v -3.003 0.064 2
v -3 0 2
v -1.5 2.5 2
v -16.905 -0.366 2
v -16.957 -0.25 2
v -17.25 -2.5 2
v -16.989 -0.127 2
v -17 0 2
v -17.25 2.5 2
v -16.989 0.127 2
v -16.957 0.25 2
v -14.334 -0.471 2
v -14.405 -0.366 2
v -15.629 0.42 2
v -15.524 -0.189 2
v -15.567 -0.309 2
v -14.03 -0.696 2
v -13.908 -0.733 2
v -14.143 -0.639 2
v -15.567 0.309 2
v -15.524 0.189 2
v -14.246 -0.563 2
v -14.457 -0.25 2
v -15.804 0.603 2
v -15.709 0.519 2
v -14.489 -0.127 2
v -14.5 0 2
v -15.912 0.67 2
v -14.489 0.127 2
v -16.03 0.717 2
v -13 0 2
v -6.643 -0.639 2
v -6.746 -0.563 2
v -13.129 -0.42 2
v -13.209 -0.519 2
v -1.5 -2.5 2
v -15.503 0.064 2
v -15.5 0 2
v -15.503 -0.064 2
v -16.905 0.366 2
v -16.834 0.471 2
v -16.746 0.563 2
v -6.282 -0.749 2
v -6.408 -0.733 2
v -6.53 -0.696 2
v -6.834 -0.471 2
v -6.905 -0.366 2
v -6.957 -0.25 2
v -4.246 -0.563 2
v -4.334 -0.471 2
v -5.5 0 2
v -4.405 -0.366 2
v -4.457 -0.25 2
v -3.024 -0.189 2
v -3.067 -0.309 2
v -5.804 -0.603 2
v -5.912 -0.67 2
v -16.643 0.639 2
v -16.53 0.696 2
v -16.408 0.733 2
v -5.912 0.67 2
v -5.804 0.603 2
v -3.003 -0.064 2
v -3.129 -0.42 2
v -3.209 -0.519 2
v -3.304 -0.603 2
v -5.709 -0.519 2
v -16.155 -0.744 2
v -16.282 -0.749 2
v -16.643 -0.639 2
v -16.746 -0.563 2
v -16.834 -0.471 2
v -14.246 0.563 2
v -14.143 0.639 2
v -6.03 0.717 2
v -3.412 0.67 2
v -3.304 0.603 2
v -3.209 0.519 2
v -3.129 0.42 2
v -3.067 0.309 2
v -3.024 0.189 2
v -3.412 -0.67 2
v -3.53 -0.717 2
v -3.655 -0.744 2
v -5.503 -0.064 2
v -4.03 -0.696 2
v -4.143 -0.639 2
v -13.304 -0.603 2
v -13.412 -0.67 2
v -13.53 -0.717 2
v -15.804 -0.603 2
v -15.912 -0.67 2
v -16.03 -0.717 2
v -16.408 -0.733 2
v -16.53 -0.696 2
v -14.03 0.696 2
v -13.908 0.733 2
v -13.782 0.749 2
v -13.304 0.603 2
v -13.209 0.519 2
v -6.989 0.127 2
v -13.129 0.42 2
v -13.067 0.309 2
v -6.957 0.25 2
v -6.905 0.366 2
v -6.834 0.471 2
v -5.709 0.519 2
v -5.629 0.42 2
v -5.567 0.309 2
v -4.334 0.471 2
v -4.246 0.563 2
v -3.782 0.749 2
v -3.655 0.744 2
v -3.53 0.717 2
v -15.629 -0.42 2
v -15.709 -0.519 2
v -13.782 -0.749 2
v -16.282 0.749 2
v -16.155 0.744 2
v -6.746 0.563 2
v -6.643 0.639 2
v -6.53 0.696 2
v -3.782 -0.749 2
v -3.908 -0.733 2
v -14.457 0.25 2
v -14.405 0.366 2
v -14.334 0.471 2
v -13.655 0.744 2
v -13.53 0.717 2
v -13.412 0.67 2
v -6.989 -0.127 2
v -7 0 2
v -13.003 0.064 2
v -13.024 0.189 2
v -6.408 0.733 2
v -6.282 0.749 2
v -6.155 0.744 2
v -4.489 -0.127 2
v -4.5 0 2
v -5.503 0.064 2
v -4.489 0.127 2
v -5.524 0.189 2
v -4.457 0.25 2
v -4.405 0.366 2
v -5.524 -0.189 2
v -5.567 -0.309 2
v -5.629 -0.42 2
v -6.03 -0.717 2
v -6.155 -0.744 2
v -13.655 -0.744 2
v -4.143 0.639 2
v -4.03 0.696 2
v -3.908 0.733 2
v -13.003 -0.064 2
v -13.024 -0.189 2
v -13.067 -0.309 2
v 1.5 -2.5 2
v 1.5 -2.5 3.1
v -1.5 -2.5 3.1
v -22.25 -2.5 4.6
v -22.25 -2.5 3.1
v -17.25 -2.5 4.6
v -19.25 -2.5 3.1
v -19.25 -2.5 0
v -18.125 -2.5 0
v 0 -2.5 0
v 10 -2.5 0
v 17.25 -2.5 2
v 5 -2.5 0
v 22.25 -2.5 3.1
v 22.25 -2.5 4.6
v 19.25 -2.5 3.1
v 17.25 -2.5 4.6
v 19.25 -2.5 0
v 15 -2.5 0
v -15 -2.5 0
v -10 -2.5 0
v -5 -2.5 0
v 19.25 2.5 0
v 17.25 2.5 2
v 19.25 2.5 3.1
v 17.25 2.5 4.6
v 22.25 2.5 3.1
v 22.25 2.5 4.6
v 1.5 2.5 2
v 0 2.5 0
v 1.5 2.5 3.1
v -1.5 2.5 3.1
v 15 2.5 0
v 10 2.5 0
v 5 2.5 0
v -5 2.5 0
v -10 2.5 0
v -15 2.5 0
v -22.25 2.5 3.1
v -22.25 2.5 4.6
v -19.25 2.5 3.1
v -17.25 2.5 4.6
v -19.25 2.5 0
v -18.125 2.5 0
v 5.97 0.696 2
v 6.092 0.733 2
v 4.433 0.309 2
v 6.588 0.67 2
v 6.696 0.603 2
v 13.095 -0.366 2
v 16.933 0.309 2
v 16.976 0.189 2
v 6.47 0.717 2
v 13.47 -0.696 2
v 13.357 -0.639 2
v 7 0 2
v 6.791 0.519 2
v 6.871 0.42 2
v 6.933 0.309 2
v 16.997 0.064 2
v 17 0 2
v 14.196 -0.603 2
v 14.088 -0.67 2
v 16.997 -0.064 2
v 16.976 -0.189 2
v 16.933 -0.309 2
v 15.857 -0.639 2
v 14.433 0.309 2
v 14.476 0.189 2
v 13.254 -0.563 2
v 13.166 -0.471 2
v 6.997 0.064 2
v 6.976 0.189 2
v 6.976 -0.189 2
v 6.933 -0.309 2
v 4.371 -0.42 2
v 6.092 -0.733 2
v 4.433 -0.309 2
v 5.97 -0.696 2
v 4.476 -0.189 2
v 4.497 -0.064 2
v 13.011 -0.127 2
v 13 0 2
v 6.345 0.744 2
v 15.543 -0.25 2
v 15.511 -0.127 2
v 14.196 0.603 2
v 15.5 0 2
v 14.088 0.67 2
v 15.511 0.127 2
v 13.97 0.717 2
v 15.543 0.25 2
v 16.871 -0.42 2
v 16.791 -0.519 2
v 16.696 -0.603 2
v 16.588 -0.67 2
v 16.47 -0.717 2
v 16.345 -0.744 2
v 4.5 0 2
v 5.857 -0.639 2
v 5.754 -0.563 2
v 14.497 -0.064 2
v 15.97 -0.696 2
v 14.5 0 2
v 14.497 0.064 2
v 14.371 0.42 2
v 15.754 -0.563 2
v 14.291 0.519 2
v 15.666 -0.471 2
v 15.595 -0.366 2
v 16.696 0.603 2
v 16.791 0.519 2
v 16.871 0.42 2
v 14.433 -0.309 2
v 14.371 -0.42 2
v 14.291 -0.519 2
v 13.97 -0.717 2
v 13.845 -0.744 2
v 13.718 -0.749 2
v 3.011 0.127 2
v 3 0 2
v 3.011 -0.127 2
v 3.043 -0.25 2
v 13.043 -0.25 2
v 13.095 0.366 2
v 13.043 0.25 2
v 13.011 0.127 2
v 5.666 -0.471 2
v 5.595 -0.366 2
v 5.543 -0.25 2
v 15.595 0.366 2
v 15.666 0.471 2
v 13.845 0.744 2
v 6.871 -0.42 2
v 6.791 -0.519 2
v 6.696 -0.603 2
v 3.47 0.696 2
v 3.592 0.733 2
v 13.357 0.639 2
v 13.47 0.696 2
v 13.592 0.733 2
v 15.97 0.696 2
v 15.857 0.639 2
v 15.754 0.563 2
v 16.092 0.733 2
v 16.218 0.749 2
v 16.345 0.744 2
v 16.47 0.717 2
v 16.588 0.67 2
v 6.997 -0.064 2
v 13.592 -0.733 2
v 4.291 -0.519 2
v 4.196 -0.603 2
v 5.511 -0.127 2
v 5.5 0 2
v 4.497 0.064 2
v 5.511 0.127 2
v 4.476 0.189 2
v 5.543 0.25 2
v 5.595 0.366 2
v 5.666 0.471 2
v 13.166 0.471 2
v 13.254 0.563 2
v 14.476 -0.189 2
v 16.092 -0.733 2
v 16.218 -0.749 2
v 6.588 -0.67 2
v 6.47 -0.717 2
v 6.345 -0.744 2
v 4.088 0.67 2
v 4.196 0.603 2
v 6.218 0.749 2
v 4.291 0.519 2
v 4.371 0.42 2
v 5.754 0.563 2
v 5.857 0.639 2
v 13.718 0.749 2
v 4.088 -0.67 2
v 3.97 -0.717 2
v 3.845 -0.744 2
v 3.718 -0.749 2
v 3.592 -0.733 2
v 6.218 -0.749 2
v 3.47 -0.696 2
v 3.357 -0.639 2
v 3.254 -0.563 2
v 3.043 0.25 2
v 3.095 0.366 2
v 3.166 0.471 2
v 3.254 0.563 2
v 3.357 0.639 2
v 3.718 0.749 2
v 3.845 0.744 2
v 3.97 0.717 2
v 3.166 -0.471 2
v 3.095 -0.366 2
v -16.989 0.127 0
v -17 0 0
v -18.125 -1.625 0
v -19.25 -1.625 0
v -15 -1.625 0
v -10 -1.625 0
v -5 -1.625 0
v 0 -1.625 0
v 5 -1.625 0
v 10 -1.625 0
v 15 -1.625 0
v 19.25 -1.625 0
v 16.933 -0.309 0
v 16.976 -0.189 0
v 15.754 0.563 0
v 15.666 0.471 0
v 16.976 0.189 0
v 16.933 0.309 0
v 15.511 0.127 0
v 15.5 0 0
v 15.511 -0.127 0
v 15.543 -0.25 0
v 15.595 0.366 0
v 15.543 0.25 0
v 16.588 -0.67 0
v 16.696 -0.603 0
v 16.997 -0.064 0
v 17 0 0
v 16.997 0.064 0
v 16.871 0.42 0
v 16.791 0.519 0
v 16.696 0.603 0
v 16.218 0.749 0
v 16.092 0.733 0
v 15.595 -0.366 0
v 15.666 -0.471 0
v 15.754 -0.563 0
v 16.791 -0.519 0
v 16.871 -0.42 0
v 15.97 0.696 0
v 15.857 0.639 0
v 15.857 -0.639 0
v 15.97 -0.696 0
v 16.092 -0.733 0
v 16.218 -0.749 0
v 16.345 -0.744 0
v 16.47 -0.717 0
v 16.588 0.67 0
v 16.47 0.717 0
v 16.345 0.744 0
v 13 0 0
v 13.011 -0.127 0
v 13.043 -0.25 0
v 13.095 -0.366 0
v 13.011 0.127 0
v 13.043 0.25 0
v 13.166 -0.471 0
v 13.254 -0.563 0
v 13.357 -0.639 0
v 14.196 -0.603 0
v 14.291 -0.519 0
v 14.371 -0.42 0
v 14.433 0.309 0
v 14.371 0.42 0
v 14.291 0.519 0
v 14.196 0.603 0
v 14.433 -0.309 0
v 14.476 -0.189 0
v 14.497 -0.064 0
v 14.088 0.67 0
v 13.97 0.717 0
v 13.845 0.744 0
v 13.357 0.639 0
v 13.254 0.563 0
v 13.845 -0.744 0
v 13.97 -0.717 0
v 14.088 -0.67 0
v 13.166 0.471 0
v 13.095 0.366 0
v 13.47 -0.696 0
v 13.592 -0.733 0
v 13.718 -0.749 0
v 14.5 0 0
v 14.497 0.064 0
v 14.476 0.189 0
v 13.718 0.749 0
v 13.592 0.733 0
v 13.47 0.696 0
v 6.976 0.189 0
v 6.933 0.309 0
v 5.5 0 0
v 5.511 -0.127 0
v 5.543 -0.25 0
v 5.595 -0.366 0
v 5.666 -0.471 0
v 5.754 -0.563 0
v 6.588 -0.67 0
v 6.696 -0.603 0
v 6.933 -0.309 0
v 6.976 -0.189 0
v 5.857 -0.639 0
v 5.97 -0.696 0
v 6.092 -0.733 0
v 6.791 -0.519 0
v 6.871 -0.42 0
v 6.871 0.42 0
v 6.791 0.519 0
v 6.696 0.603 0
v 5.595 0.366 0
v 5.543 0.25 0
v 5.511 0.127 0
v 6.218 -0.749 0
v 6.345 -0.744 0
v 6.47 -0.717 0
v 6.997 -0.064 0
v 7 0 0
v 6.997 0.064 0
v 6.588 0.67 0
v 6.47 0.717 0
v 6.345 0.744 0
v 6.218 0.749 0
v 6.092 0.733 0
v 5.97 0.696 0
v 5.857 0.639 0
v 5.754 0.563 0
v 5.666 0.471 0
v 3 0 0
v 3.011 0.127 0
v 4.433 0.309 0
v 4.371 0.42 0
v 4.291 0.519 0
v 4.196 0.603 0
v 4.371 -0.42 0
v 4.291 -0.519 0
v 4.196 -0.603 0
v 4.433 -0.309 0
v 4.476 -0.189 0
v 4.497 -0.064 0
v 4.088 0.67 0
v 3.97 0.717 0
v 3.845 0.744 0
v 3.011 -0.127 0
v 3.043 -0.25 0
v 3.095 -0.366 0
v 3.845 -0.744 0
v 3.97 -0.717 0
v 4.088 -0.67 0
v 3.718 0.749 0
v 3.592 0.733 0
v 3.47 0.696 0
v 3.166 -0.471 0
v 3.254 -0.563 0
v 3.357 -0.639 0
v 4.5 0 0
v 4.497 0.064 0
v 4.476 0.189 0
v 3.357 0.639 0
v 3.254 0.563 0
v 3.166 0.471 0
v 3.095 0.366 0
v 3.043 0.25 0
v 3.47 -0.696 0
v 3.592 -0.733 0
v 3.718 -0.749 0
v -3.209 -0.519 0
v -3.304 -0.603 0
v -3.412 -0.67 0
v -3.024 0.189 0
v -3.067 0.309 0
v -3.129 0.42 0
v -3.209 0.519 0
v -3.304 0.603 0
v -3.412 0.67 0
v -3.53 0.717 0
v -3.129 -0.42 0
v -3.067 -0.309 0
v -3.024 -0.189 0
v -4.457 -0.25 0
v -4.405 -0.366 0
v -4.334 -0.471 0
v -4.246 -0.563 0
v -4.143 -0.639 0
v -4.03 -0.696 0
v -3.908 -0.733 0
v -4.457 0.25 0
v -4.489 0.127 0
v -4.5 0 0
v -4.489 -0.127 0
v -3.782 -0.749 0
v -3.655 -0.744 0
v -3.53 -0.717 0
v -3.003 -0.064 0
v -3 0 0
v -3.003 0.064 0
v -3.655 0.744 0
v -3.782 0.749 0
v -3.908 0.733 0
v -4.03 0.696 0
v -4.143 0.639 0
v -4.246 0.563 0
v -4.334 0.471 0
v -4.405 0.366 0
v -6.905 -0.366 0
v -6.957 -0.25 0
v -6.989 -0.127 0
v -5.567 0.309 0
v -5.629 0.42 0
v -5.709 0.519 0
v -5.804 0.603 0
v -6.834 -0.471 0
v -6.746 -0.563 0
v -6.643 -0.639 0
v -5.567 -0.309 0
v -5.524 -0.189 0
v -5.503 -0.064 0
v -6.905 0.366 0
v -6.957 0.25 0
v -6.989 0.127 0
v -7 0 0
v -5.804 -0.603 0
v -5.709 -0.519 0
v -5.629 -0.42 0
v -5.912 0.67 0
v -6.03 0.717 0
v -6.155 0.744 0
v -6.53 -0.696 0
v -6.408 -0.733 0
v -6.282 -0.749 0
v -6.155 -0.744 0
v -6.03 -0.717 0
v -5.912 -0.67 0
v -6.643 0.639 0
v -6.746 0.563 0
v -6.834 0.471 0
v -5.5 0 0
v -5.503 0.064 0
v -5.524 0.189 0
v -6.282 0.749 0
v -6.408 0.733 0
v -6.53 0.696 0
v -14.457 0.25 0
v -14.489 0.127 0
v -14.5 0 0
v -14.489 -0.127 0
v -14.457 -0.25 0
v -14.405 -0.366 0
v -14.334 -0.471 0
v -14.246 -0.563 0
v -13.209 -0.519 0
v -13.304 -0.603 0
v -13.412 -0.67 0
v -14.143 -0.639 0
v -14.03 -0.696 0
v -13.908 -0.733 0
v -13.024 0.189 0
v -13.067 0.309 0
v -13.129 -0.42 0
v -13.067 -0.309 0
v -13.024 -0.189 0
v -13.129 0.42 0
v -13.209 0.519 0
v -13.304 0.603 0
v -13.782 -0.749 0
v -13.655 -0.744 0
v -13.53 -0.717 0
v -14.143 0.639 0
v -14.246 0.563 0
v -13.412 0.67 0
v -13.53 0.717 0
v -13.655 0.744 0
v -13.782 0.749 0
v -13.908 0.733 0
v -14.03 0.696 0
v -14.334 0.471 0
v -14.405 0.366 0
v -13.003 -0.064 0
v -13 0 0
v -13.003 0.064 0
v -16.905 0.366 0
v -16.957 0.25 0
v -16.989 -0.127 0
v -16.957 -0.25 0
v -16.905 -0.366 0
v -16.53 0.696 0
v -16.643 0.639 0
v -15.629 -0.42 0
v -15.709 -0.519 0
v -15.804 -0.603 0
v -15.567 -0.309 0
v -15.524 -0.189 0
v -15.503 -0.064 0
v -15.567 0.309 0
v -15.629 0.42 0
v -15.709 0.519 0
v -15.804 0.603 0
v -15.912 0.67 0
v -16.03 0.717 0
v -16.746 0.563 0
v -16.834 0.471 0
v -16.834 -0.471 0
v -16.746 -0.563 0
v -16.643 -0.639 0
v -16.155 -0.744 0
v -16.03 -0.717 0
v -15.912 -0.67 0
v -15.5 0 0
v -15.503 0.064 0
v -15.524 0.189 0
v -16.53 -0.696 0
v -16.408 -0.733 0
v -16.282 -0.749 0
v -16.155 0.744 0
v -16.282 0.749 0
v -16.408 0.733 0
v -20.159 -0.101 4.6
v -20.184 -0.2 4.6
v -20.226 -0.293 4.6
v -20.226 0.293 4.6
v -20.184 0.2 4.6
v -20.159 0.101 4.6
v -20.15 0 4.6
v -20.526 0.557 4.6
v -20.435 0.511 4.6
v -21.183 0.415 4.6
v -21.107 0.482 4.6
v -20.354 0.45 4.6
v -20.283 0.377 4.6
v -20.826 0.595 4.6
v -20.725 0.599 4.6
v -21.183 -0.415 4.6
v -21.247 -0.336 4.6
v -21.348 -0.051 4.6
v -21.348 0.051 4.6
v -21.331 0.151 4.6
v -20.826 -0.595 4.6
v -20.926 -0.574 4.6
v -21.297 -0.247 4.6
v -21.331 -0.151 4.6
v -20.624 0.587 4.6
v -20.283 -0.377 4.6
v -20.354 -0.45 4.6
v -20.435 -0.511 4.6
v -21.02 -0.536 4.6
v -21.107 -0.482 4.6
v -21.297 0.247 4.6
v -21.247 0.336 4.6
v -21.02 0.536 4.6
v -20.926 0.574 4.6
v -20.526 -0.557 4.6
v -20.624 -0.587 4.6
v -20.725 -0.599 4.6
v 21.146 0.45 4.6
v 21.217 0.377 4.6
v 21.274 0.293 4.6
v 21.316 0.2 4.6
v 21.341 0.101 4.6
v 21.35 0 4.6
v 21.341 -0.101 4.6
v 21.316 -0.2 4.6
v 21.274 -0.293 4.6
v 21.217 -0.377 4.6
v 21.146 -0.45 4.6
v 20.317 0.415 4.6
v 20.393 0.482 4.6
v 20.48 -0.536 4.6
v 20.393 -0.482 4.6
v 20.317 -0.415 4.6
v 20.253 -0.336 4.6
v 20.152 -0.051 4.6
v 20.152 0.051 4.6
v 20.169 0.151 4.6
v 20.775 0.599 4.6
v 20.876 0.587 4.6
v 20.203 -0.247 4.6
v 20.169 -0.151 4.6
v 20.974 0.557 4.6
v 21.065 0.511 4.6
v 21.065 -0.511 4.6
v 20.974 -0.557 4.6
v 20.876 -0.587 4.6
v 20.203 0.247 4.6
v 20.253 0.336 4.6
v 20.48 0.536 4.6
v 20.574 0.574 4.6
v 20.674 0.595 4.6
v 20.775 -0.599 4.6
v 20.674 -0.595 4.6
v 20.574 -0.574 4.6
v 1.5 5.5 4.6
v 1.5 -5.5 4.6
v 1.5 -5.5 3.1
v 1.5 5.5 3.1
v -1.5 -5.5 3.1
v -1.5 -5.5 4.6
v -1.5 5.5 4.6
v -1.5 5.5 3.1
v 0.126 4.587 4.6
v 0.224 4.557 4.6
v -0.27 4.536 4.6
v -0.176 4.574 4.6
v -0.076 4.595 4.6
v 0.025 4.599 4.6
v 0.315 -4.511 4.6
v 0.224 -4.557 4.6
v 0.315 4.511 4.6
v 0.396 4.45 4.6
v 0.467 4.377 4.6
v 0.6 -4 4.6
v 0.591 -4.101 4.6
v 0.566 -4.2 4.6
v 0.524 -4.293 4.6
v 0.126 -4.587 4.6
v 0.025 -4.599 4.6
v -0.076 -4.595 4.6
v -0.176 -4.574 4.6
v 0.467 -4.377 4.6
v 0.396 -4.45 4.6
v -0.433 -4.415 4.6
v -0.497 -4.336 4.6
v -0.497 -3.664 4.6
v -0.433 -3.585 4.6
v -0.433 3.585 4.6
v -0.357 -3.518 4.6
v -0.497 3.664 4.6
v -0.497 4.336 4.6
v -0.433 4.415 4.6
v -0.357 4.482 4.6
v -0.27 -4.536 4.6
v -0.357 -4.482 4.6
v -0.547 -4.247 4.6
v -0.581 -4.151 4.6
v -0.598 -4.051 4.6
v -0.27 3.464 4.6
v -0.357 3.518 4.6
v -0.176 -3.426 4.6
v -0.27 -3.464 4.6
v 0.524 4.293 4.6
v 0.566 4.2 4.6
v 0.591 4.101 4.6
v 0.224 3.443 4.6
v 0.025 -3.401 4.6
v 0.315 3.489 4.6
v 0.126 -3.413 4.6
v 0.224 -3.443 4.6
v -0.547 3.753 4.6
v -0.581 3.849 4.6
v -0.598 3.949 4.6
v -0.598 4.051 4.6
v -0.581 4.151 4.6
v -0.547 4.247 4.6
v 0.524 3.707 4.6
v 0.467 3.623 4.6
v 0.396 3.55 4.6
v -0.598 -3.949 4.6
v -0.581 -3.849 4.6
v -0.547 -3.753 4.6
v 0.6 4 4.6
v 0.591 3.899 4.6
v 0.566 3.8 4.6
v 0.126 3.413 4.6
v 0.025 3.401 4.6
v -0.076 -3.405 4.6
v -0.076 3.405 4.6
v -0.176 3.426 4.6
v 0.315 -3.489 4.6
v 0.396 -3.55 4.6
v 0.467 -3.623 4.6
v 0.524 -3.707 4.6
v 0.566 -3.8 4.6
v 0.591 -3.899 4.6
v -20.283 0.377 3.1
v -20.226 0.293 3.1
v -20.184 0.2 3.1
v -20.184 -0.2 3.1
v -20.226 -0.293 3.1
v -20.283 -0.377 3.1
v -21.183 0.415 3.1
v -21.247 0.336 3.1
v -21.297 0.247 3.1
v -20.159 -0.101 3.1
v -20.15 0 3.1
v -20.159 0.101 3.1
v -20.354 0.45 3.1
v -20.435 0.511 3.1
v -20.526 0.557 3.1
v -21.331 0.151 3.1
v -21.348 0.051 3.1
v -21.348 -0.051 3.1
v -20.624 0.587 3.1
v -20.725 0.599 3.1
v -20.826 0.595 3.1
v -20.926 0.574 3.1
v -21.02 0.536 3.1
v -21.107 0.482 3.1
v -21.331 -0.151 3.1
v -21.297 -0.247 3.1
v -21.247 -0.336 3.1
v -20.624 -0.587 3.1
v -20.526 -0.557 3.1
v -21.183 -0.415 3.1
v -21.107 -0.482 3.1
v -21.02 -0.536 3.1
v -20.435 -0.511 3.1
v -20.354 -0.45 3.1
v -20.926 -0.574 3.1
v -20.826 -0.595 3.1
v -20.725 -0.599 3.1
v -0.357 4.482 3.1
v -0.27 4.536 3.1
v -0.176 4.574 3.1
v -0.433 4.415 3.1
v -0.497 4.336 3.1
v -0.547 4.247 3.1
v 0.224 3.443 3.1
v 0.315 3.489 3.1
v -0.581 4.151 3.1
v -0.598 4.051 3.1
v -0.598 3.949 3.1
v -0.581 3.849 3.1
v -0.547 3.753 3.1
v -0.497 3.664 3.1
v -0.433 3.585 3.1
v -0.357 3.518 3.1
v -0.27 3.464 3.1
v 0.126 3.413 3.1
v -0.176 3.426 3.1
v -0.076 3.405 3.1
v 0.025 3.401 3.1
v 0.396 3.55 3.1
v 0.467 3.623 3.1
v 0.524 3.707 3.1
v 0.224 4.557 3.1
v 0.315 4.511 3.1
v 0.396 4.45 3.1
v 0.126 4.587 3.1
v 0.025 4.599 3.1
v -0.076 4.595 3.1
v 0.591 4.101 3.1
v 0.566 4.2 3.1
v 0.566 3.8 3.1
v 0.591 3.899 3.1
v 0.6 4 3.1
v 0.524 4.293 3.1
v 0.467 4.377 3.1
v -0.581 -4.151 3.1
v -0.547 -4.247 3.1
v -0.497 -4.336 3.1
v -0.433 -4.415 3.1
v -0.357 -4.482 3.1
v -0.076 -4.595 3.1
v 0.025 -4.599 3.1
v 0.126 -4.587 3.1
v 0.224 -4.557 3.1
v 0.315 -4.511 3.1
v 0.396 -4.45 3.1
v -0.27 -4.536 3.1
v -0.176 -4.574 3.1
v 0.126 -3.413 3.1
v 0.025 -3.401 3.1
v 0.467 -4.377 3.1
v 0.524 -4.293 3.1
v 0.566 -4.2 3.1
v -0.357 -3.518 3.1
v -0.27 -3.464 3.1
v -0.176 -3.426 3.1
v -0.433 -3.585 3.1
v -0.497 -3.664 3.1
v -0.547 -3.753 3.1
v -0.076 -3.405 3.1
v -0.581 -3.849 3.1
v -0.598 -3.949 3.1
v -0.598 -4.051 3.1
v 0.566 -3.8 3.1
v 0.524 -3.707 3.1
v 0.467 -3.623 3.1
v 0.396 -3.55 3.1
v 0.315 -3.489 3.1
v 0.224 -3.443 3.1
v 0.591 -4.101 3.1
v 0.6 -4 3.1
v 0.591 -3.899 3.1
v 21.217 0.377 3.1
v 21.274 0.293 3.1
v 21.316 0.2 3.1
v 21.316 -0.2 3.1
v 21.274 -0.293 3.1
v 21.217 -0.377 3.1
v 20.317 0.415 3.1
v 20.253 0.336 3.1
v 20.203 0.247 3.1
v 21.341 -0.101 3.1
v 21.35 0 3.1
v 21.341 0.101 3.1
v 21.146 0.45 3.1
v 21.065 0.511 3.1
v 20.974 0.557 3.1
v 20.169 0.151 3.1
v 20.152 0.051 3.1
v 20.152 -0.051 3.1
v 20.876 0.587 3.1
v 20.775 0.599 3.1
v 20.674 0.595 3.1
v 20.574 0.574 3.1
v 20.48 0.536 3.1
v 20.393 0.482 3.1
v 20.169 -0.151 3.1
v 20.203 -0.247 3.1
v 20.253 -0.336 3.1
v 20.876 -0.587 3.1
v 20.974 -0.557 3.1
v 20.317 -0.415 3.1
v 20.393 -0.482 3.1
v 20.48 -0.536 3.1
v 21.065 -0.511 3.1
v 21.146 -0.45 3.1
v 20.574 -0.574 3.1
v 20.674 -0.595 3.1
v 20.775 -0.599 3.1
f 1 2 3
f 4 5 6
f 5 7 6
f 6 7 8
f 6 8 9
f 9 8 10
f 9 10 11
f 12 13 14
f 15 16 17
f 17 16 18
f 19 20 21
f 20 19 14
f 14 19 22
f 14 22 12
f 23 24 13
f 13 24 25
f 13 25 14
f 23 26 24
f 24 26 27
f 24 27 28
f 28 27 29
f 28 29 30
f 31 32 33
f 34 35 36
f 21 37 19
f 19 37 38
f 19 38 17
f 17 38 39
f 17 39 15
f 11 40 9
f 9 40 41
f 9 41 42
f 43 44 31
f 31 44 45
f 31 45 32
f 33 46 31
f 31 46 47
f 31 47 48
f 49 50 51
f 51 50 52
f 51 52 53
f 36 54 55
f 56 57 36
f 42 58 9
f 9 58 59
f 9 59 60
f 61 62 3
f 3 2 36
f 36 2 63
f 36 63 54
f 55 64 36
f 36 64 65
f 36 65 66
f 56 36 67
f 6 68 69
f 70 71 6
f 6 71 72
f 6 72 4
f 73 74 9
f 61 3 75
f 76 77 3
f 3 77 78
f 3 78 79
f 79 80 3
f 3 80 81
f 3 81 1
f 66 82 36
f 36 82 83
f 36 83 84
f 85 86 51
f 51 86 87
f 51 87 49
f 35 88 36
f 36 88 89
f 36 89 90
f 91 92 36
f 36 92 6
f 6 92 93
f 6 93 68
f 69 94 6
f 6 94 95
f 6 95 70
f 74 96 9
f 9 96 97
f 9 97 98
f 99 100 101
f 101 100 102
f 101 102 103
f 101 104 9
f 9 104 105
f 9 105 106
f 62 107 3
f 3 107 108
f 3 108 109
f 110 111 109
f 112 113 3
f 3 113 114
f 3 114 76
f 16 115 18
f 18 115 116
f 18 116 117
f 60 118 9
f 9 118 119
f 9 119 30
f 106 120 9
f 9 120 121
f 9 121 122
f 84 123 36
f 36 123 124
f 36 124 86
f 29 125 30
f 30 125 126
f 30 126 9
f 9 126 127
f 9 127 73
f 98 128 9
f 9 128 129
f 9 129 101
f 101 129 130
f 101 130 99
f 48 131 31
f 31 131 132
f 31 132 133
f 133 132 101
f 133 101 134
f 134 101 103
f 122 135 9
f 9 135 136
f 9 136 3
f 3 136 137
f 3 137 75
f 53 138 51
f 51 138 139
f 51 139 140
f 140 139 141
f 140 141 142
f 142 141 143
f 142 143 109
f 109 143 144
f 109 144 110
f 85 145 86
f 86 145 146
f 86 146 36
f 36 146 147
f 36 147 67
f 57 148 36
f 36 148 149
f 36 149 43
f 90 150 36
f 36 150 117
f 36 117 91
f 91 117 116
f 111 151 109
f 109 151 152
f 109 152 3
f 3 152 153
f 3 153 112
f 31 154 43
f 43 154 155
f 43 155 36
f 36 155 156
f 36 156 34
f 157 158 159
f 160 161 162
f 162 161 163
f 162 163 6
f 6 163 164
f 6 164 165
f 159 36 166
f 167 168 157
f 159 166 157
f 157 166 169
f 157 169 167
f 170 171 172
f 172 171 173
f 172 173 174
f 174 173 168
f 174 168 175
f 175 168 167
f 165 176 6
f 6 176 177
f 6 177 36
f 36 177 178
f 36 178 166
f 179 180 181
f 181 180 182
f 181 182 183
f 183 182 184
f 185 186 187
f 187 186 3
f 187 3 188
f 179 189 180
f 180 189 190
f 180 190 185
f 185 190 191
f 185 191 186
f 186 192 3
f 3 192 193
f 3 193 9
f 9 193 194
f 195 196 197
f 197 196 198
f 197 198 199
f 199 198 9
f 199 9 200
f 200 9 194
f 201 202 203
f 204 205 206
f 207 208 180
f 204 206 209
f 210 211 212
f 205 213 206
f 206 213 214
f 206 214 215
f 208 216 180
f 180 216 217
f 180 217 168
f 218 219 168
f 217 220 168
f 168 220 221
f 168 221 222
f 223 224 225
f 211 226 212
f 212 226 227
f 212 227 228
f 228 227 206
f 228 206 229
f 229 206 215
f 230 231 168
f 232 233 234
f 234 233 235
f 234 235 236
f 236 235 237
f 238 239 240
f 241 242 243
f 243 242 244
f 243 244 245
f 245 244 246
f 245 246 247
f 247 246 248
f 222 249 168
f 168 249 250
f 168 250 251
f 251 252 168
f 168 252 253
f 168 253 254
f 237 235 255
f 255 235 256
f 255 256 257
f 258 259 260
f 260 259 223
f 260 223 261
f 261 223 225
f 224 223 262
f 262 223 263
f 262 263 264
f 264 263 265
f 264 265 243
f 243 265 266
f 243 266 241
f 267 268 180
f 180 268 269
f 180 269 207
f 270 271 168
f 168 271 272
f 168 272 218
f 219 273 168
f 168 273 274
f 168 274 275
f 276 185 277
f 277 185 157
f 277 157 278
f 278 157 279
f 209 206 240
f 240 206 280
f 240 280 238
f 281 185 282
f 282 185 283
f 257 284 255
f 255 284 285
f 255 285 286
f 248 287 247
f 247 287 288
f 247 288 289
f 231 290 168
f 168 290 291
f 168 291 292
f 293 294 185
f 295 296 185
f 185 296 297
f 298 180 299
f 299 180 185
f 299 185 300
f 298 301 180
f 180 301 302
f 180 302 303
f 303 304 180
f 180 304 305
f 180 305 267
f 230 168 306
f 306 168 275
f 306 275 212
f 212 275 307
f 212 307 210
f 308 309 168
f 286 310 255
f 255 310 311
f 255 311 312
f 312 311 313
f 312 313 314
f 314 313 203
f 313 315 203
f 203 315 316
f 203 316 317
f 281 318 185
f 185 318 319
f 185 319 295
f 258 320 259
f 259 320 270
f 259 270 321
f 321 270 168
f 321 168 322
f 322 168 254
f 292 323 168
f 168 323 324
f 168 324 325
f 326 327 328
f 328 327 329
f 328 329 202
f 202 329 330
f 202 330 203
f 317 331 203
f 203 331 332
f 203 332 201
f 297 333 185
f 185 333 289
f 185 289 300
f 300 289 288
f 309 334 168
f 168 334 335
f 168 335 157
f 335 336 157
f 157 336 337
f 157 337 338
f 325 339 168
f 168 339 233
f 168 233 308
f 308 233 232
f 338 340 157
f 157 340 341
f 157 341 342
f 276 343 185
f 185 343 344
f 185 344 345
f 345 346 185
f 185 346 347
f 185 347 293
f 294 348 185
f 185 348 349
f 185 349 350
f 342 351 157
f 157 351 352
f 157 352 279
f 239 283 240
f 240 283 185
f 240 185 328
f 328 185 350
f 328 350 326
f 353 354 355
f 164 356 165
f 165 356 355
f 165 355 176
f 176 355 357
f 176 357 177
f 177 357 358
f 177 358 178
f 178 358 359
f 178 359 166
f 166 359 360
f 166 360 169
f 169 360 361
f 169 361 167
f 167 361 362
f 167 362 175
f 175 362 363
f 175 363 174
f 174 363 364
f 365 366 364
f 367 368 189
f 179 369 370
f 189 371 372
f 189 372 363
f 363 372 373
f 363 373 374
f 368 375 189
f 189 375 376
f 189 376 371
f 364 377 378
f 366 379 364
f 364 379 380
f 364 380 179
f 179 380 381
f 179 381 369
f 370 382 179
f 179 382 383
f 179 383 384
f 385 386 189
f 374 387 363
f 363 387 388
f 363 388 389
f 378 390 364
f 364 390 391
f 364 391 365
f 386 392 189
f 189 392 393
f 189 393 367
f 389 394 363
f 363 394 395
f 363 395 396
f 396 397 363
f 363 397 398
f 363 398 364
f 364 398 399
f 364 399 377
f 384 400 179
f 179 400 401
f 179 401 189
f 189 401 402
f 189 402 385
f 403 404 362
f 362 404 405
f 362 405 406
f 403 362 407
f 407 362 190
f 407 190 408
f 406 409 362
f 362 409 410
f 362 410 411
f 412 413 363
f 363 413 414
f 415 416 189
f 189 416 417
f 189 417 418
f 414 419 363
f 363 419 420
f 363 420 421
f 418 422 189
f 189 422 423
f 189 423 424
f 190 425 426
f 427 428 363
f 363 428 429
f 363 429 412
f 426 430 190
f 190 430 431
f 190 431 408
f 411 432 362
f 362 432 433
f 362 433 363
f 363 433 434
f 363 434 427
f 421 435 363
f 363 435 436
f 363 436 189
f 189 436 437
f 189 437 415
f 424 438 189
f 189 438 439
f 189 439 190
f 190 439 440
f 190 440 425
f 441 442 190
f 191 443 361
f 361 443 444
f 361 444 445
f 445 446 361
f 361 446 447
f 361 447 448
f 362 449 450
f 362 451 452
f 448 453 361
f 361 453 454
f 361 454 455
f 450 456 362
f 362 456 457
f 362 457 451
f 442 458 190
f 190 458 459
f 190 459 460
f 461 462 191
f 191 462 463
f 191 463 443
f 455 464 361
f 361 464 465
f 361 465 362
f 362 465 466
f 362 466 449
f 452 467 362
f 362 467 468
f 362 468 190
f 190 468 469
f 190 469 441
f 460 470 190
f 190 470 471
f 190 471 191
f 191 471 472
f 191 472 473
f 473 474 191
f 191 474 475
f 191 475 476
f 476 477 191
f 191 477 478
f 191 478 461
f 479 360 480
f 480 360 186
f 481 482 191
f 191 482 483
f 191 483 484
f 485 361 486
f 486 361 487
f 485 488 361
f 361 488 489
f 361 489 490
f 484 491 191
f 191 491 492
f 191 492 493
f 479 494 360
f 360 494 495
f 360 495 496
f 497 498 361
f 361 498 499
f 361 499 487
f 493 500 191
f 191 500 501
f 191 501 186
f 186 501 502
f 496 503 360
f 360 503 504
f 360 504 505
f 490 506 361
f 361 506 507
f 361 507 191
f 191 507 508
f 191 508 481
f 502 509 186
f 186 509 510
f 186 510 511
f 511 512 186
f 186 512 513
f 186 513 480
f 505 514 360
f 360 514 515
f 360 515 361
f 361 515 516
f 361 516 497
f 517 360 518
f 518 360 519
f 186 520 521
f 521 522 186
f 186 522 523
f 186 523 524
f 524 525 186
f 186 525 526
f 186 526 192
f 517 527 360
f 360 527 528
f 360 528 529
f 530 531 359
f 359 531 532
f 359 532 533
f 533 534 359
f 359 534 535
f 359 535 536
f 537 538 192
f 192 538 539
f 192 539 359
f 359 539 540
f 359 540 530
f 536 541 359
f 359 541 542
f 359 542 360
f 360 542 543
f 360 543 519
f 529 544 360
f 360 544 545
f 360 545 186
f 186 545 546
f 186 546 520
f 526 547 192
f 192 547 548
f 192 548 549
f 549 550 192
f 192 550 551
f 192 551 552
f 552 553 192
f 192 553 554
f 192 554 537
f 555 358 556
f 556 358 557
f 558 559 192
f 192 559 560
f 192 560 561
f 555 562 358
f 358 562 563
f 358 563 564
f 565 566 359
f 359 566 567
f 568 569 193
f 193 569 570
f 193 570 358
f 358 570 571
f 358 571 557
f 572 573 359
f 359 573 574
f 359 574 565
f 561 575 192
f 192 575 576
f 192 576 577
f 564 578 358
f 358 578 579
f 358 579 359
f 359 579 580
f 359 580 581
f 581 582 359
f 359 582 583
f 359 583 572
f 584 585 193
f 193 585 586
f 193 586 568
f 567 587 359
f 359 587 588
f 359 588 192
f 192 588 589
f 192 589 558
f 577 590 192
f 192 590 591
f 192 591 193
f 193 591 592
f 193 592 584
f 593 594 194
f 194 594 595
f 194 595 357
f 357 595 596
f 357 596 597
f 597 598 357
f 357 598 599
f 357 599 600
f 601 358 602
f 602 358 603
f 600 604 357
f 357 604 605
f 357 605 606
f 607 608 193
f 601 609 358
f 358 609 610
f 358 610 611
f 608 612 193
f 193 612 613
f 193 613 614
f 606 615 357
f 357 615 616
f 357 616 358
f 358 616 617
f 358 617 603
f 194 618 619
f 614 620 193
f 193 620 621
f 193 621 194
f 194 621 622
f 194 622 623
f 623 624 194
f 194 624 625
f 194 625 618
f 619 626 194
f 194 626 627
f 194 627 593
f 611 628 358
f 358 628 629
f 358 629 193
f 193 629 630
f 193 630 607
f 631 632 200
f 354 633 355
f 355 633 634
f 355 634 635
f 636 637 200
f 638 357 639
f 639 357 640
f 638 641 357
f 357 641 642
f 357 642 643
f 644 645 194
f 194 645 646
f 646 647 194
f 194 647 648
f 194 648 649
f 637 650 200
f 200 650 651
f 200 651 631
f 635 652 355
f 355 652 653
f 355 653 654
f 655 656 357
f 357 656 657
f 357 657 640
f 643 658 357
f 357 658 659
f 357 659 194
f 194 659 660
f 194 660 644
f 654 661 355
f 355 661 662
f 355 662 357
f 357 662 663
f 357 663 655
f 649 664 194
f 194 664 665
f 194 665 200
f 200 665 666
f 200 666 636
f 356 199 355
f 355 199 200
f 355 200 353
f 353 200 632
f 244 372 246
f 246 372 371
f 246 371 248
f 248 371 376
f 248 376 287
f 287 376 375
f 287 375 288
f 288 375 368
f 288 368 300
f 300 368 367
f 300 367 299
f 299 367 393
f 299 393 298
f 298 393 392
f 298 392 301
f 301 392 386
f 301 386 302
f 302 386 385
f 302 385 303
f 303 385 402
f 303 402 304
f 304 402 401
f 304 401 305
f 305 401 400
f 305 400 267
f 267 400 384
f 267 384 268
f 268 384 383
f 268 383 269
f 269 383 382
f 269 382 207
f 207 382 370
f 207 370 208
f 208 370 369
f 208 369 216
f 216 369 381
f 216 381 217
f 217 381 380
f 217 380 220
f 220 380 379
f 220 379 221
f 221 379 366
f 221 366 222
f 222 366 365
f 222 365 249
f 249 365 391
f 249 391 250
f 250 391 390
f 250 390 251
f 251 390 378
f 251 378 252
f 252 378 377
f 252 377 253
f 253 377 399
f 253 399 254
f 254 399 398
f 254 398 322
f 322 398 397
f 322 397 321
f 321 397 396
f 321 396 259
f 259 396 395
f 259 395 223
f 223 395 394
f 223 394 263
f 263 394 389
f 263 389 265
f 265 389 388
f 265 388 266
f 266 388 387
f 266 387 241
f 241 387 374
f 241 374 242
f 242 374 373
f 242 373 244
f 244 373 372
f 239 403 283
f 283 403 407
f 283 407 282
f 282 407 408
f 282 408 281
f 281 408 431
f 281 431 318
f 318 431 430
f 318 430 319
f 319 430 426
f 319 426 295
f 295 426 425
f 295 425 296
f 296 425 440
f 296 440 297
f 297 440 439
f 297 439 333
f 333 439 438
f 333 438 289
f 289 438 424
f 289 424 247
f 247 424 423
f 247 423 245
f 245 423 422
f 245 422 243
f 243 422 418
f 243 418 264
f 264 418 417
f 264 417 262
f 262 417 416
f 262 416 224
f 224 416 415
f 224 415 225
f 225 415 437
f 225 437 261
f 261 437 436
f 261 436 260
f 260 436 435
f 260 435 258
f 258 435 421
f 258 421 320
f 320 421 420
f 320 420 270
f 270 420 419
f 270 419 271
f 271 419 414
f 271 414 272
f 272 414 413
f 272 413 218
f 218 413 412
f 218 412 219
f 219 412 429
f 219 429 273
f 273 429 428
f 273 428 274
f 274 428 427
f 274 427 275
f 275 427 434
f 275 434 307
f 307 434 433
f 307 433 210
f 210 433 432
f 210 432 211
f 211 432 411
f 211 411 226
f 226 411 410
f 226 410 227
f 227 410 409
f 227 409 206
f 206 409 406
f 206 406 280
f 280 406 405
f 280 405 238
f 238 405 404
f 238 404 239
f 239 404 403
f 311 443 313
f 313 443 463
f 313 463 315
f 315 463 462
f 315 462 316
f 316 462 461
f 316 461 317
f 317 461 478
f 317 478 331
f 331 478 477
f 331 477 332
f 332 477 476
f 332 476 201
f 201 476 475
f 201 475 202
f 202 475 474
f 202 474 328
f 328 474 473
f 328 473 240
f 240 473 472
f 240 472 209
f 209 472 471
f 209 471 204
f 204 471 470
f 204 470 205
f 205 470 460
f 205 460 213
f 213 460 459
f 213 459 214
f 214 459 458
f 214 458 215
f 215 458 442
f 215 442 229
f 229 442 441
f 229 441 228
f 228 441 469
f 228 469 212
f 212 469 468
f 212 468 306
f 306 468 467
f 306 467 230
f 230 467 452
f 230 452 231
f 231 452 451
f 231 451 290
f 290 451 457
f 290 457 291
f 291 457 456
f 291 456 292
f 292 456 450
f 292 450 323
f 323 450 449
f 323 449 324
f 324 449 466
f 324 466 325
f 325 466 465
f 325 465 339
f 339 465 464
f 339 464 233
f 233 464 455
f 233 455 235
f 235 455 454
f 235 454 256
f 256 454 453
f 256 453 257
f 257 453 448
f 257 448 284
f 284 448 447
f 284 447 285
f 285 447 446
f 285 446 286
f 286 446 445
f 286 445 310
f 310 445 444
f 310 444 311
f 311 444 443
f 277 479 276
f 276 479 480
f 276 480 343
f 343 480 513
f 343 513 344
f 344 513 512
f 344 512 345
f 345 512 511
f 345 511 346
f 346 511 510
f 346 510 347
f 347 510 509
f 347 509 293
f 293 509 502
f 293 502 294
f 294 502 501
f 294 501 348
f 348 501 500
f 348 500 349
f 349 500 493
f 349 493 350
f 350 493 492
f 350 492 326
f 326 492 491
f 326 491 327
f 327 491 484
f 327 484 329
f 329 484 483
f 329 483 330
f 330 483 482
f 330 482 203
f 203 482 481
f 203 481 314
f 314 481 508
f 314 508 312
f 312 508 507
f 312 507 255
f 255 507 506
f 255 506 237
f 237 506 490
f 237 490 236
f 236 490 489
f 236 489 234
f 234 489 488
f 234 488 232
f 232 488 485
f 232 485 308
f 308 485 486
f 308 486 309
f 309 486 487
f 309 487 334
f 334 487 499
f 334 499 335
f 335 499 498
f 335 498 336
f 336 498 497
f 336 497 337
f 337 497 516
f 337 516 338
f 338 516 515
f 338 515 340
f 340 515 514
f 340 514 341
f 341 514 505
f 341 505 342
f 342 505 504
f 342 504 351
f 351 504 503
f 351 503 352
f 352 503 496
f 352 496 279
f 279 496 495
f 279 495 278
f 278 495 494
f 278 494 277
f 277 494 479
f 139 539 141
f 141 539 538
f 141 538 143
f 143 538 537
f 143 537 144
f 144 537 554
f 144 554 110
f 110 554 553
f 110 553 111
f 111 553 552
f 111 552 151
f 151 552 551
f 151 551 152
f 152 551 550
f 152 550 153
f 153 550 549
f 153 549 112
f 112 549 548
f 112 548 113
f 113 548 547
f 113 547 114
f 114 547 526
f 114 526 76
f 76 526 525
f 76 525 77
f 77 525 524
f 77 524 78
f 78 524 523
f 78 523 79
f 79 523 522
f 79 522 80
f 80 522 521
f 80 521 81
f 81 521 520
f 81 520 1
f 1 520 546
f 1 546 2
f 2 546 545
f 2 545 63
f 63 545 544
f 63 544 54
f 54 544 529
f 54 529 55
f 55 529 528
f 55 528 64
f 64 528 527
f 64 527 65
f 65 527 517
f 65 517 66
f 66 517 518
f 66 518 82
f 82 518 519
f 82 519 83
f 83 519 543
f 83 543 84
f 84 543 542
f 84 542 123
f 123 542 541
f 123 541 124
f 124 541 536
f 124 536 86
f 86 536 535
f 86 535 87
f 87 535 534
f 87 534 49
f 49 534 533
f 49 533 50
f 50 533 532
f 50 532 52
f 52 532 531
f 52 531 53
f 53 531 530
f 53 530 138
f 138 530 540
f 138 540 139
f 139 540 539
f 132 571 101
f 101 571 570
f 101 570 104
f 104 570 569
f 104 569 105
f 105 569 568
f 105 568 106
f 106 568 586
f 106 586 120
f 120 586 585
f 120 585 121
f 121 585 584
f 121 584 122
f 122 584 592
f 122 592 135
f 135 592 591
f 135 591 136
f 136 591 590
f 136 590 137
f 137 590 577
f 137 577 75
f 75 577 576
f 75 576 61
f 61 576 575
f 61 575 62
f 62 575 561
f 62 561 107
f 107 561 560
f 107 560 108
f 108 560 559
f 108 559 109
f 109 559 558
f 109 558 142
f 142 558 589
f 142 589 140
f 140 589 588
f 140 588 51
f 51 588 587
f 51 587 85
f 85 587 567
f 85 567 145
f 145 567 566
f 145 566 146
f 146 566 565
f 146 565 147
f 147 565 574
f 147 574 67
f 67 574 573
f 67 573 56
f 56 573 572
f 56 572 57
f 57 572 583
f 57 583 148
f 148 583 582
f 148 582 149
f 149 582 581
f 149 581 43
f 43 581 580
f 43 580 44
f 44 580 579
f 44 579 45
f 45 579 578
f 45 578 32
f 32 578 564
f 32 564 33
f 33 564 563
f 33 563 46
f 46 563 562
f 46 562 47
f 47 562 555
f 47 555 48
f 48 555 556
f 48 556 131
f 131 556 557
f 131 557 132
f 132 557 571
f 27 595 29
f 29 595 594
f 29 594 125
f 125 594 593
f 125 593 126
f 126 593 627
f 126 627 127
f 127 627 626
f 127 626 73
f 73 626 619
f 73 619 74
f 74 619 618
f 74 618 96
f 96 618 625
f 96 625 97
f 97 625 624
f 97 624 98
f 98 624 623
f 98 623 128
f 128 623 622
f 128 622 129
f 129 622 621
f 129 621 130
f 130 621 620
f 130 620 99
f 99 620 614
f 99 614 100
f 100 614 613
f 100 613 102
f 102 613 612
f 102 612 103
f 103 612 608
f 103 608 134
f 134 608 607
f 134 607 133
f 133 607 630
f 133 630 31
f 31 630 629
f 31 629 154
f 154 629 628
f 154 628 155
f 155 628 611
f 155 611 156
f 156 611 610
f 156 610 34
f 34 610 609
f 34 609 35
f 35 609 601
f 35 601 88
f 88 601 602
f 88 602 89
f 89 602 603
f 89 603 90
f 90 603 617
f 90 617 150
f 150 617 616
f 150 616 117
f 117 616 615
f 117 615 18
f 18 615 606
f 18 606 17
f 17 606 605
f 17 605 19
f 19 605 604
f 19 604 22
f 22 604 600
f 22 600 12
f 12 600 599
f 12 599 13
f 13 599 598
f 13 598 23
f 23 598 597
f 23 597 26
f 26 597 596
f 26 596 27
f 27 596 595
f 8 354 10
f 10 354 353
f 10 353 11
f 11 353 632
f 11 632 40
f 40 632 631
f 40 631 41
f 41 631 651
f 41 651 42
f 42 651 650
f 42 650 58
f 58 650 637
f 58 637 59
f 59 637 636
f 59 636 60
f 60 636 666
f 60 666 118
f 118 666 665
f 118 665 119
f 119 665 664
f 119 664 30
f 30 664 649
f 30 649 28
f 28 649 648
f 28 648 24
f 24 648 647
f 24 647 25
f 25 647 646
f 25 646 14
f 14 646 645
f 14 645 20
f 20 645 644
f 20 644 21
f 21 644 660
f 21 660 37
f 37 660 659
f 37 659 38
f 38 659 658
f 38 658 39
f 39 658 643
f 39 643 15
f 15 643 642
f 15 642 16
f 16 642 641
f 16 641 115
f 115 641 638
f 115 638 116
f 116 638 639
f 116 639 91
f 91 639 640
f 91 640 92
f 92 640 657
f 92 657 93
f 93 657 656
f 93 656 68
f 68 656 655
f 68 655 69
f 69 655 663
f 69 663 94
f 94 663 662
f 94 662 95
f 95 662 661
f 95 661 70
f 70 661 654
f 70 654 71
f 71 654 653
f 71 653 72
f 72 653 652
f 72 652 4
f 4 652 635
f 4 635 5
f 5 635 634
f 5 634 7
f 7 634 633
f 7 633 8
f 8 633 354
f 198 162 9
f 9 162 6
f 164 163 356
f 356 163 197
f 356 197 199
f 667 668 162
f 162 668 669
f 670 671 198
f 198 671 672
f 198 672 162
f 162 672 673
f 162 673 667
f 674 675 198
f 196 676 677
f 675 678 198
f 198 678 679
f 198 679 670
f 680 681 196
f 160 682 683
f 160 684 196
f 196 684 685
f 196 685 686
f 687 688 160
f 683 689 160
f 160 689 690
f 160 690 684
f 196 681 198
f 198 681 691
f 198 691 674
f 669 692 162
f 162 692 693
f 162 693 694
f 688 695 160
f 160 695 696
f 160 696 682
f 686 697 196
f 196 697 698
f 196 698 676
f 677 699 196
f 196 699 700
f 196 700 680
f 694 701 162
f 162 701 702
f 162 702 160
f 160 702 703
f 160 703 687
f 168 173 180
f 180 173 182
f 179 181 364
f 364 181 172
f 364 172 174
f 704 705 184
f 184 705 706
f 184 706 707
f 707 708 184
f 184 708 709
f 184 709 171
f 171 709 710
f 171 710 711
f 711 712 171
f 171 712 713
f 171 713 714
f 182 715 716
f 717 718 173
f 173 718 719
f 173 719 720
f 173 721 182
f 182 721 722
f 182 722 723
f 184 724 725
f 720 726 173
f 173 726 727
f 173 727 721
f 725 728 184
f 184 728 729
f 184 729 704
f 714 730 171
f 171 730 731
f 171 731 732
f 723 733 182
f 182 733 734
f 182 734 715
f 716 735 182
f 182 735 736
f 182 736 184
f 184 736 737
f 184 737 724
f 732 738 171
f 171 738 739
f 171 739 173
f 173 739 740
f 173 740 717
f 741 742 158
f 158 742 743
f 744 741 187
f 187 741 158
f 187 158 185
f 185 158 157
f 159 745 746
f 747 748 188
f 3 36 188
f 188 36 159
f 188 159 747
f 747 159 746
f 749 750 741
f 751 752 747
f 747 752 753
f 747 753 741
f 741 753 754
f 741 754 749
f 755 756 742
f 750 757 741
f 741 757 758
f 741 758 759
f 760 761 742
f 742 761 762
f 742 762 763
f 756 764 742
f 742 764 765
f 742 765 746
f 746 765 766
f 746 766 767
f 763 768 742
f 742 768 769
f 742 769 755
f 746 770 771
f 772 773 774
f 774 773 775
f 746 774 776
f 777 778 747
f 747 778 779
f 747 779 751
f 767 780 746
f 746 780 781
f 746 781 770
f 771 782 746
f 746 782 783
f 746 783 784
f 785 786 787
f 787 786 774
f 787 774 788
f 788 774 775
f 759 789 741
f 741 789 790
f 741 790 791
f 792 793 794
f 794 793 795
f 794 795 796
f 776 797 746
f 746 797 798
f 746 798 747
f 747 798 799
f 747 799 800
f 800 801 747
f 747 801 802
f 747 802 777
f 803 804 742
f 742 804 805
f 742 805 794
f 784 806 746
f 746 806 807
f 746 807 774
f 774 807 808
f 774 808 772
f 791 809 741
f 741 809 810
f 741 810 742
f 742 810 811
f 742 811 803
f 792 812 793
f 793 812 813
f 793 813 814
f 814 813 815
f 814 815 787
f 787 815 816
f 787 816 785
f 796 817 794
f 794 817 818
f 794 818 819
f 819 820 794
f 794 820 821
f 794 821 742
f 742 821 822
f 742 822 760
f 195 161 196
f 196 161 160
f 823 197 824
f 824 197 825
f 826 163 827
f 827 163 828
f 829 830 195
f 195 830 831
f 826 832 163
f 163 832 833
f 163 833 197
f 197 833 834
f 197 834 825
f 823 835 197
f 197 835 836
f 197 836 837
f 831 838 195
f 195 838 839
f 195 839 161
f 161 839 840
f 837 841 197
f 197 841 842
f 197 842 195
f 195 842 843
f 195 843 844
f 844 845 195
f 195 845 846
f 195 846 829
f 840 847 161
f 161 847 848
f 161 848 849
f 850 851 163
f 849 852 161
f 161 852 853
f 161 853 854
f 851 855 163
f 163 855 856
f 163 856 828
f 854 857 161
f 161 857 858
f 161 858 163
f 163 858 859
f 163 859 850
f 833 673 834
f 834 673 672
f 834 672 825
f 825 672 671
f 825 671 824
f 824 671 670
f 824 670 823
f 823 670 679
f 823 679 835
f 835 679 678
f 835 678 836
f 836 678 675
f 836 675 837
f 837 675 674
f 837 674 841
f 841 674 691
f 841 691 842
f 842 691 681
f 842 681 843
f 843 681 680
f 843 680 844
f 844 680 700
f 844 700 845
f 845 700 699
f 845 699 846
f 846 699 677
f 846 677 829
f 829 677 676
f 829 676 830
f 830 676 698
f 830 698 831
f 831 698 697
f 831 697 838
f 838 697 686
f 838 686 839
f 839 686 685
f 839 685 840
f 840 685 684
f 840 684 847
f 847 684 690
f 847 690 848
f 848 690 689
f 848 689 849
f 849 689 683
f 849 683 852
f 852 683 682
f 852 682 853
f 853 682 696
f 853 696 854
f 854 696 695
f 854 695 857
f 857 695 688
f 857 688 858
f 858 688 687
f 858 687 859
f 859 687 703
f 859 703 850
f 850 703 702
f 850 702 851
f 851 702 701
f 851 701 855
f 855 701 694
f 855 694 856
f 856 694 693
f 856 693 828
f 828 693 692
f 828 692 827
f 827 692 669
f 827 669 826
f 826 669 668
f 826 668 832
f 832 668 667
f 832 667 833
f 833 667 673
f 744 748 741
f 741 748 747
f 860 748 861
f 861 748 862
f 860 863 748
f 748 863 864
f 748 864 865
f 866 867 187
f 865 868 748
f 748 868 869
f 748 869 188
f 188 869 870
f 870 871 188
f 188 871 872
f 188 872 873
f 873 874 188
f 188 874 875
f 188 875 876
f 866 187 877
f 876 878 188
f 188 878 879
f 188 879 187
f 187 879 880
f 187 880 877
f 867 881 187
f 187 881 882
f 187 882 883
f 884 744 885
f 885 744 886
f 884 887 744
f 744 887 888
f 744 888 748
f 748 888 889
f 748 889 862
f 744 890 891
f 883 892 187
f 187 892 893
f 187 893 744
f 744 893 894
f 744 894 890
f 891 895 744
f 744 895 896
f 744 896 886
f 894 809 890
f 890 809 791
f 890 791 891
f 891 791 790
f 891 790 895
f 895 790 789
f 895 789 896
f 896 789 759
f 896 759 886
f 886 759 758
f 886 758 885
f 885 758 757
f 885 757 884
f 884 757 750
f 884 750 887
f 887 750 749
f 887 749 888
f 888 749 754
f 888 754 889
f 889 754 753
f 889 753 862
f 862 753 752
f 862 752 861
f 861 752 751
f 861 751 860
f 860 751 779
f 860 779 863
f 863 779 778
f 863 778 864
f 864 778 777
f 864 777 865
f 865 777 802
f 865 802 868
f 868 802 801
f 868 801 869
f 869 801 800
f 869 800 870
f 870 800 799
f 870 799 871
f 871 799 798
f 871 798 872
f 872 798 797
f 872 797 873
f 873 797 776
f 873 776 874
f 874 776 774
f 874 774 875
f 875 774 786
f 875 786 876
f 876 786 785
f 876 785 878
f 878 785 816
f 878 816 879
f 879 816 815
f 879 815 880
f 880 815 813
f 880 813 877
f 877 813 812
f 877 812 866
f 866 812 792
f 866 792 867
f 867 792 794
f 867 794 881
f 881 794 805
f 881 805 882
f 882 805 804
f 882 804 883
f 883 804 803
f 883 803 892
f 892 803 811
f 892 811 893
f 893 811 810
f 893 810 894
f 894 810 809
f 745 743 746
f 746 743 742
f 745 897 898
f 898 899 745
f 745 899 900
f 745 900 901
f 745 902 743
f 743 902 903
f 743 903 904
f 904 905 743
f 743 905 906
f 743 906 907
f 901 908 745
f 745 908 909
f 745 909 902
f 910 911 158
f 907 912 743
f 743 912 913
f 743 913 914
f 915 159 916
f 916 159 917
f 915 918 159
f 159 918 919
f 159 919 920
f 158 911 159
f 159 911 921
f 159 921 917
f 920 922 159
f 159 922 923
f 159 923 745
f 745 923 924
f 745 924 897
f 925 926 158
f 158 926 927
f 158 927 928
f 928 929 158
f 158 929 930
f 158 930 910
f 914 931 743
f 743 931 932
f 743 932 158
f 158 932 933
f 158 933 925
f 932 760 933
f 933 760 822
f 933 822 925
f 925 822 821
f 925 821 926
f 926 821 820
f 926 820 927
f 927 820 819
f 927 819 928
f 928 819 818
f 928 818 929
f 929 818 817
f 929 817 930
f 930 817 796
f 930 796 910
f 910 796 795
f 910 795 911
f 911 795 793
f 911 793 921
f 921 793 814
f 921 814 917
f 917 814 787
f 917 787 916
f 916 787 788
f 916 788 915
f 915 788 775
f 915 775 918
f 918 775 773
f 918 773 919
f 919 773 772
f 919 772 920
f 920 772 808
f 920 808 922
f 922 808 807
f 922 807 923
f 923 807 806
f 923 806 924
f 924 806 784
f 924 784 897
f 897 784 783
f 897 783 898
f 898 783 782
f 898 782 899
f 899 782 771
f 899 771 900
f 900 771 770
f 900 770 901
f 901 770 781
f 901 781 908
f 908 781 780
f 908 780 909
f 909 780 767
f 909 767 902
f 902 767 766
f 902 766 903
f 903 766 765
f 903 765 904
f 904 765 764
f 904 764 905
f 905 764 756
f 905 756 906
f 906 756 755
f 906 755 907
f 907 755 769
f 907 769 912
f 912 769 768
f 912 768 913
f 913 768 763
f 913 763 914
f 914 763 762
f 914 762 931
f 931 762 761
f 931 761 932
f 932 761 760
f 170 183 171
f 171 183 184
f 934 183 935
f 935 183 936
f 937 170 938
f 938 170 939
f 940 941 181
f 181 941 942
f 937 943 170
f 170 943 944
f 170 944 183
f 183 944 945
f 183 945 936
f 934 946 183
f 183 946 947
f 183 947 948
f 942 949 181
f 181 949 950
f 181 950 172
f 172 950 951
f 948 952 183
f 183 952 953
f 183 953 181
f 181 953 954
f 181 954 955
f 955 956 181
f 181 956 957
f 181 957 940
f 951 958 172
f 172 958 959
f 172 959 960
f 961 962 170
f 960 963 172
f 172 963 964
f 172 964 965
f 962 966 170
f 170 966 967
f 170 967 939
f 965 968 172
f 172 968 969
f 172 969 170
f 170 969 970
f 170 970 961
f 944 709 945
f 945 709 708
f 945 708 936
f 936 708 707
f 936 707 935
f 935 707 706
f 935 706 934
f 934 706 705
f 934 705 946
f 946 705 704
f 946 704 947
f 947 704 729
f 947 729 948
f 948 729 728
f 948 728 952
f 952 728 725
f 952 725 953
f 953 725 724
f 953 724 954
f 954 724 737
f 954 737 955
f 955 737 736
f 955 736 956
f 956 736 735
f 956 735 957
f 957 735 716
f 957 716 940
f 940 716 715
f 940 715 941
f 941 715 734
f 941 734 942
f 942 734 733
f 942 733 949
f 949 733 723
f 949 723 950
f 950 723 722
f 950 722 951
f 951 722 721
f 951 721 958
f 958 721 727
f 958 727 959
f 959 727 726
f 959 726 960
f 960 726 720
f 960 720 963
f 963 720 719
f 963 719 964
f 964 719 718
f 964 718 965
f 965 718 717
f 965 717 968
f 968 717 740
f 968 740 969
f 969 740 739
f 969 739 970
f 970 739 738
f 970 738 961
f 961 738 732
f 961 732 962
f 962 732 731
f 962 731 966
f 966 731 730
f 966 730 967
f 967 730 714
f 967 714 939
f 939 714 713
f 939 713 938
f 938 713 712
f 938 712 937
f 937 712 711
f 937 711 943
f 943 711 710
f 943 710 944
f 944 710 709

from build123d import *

# Parameters (mm, degrees)
SKETCH_1_W          = 34.5
SKETCH_1_H          = 5
EXTRUDE_1_DEPTH     = 2
SKETCH_1_9_R        = 0.75
CUT_EXTRUDE_1_DEPTH = 18.54458606
SKETCH_1_10_W       = 2
SKETCH_1_10_H       = 5
SKETCH_1_10_W_2     = 3
SKETCH_1_10_H_2     = 2.5
EXTRUDE_2_DEPTH     = 4.6
EXTRUDE_START       = 4.6
SKETCH_1_12_W       = 3
SKETCH_1_12_H       = 3
SKETCH_1_12_R       = 0.6
SKETCH_1_12_H_2     = 5
EXTRUDE_3_DEPTH     = 1.5


with BuildPart() as part:
    # 草图1 → 凸台-拉伸1 (new body)
    with BuildSketch(Plane.XY):
        Rectangle(SKETCH_1_W, SKETCH_1_H)
    extrude(amount=EXTRUDE_1_DEPTH)

    # 草图1<9> → 切除-拉伸1 (cut, through all)
    with BuildSketch(Plane.XY):
        with Locations((-16.25, 0)):
            Circle(SKETCH_1_9_R)
        with Locations((-13.75, 0)):
            Circle(SKETCH_1_9_R)
        with Locations((-6.25, 0)):
            Circle(SKETCH_1_9_R)
        with Locations((-3.75, 0)):
            Circle(SKETCH_1_9_R)
        with Locations((3.75, 0)):
            Circle(SKETCH_1_9_R)
        with Locations((6.25, 0)):
            Circle(SKETCH_1_9_R)
        with Locations((13.75, 0)):
            Circle(SKETCH_1_9_R)
        with Locations((16.25, 0)):
            Circle(SKETCH_1_9_R)
    extrude(amount=CUT_EXTRUDE_1_DEPTH, mode=Mode.SUBTRACT)

    # 草图1<10> → 凸台-拉伸2 (add)
    with BuildSketch(Plane.XY):
        with Locations((-18.25, 0)):
            Rectangle(SKETCH_1_10_W, SKETCH_1_10_H)
        with Locations((18.25, 0)):
            Rectangle(SKETCH_1_10_W, SKETCH_1_10_H)
        with Locations((0, 1.25)):
            Rectangle(SKETCH_1_10_W_2, SKETCH_1_10_H_2)
        with Locations((0, -1.25)):
            Rectangle(SKETCH_1_10_W_2, SKETCH_1_10_H_2)
    extrude(amount=EXTRUDE_2_DEPTH)

    # 草图1<12> → 凸台-拉伸3 (add)
    # profile 1 of 4: a face of its own
    with BuildSketch(Plane.XY.offset(EXTRUDE_START)):
        with Locations((0, 4)):
            Rectangle(SKETCH_1_12_W, SKETCH_1_12_H)
        with Locations((0, 4)):
            Circle(SKETCH_1_12_R, mode=Mode.SUBTRACT)
    # profile 2 of 4: a face of its own
    with BuildSketch(Plane.XY.offset(EXTRUDE_START)):
        with Locations((-20.75, 0)):
            Rectangle(SKETCH_1_12_W, SKETCH_1_12_H_2)
        with Locations((-20.75, 0)):
            Circle(SKETCH_1_12_R, mode=Mode.SUBTRACT)
    # profile 3 of 4: a face of its own
    with BuildSketch(Plane.XY.offset(EXTRUDE_START)):
        with Locations((0, -4)):
            Rectangle(SKETCH_1_12_W, SKETCH_1_12_H)
        with Locations((0, -4)):
            Circle(SKETCH_1_12_R, mode=Mode.SUBTRACT)
    # profile 4 of 4: a face of its own
    with BuildSketch(Plane.XY.offset(EXTRUDE_START)):
        with Locations((20.75, 0)):
            Rectangle(SKETCH_1_12_W, SKETCH_1_12_H_2)
        with Locations((20.75, 0)):
            Circle(SKETCH_1_12_R, mode=Mode.SUBTRACT)
    extrude(amount=-EXTRUDE_3_DEPTH)


solid = part.part
